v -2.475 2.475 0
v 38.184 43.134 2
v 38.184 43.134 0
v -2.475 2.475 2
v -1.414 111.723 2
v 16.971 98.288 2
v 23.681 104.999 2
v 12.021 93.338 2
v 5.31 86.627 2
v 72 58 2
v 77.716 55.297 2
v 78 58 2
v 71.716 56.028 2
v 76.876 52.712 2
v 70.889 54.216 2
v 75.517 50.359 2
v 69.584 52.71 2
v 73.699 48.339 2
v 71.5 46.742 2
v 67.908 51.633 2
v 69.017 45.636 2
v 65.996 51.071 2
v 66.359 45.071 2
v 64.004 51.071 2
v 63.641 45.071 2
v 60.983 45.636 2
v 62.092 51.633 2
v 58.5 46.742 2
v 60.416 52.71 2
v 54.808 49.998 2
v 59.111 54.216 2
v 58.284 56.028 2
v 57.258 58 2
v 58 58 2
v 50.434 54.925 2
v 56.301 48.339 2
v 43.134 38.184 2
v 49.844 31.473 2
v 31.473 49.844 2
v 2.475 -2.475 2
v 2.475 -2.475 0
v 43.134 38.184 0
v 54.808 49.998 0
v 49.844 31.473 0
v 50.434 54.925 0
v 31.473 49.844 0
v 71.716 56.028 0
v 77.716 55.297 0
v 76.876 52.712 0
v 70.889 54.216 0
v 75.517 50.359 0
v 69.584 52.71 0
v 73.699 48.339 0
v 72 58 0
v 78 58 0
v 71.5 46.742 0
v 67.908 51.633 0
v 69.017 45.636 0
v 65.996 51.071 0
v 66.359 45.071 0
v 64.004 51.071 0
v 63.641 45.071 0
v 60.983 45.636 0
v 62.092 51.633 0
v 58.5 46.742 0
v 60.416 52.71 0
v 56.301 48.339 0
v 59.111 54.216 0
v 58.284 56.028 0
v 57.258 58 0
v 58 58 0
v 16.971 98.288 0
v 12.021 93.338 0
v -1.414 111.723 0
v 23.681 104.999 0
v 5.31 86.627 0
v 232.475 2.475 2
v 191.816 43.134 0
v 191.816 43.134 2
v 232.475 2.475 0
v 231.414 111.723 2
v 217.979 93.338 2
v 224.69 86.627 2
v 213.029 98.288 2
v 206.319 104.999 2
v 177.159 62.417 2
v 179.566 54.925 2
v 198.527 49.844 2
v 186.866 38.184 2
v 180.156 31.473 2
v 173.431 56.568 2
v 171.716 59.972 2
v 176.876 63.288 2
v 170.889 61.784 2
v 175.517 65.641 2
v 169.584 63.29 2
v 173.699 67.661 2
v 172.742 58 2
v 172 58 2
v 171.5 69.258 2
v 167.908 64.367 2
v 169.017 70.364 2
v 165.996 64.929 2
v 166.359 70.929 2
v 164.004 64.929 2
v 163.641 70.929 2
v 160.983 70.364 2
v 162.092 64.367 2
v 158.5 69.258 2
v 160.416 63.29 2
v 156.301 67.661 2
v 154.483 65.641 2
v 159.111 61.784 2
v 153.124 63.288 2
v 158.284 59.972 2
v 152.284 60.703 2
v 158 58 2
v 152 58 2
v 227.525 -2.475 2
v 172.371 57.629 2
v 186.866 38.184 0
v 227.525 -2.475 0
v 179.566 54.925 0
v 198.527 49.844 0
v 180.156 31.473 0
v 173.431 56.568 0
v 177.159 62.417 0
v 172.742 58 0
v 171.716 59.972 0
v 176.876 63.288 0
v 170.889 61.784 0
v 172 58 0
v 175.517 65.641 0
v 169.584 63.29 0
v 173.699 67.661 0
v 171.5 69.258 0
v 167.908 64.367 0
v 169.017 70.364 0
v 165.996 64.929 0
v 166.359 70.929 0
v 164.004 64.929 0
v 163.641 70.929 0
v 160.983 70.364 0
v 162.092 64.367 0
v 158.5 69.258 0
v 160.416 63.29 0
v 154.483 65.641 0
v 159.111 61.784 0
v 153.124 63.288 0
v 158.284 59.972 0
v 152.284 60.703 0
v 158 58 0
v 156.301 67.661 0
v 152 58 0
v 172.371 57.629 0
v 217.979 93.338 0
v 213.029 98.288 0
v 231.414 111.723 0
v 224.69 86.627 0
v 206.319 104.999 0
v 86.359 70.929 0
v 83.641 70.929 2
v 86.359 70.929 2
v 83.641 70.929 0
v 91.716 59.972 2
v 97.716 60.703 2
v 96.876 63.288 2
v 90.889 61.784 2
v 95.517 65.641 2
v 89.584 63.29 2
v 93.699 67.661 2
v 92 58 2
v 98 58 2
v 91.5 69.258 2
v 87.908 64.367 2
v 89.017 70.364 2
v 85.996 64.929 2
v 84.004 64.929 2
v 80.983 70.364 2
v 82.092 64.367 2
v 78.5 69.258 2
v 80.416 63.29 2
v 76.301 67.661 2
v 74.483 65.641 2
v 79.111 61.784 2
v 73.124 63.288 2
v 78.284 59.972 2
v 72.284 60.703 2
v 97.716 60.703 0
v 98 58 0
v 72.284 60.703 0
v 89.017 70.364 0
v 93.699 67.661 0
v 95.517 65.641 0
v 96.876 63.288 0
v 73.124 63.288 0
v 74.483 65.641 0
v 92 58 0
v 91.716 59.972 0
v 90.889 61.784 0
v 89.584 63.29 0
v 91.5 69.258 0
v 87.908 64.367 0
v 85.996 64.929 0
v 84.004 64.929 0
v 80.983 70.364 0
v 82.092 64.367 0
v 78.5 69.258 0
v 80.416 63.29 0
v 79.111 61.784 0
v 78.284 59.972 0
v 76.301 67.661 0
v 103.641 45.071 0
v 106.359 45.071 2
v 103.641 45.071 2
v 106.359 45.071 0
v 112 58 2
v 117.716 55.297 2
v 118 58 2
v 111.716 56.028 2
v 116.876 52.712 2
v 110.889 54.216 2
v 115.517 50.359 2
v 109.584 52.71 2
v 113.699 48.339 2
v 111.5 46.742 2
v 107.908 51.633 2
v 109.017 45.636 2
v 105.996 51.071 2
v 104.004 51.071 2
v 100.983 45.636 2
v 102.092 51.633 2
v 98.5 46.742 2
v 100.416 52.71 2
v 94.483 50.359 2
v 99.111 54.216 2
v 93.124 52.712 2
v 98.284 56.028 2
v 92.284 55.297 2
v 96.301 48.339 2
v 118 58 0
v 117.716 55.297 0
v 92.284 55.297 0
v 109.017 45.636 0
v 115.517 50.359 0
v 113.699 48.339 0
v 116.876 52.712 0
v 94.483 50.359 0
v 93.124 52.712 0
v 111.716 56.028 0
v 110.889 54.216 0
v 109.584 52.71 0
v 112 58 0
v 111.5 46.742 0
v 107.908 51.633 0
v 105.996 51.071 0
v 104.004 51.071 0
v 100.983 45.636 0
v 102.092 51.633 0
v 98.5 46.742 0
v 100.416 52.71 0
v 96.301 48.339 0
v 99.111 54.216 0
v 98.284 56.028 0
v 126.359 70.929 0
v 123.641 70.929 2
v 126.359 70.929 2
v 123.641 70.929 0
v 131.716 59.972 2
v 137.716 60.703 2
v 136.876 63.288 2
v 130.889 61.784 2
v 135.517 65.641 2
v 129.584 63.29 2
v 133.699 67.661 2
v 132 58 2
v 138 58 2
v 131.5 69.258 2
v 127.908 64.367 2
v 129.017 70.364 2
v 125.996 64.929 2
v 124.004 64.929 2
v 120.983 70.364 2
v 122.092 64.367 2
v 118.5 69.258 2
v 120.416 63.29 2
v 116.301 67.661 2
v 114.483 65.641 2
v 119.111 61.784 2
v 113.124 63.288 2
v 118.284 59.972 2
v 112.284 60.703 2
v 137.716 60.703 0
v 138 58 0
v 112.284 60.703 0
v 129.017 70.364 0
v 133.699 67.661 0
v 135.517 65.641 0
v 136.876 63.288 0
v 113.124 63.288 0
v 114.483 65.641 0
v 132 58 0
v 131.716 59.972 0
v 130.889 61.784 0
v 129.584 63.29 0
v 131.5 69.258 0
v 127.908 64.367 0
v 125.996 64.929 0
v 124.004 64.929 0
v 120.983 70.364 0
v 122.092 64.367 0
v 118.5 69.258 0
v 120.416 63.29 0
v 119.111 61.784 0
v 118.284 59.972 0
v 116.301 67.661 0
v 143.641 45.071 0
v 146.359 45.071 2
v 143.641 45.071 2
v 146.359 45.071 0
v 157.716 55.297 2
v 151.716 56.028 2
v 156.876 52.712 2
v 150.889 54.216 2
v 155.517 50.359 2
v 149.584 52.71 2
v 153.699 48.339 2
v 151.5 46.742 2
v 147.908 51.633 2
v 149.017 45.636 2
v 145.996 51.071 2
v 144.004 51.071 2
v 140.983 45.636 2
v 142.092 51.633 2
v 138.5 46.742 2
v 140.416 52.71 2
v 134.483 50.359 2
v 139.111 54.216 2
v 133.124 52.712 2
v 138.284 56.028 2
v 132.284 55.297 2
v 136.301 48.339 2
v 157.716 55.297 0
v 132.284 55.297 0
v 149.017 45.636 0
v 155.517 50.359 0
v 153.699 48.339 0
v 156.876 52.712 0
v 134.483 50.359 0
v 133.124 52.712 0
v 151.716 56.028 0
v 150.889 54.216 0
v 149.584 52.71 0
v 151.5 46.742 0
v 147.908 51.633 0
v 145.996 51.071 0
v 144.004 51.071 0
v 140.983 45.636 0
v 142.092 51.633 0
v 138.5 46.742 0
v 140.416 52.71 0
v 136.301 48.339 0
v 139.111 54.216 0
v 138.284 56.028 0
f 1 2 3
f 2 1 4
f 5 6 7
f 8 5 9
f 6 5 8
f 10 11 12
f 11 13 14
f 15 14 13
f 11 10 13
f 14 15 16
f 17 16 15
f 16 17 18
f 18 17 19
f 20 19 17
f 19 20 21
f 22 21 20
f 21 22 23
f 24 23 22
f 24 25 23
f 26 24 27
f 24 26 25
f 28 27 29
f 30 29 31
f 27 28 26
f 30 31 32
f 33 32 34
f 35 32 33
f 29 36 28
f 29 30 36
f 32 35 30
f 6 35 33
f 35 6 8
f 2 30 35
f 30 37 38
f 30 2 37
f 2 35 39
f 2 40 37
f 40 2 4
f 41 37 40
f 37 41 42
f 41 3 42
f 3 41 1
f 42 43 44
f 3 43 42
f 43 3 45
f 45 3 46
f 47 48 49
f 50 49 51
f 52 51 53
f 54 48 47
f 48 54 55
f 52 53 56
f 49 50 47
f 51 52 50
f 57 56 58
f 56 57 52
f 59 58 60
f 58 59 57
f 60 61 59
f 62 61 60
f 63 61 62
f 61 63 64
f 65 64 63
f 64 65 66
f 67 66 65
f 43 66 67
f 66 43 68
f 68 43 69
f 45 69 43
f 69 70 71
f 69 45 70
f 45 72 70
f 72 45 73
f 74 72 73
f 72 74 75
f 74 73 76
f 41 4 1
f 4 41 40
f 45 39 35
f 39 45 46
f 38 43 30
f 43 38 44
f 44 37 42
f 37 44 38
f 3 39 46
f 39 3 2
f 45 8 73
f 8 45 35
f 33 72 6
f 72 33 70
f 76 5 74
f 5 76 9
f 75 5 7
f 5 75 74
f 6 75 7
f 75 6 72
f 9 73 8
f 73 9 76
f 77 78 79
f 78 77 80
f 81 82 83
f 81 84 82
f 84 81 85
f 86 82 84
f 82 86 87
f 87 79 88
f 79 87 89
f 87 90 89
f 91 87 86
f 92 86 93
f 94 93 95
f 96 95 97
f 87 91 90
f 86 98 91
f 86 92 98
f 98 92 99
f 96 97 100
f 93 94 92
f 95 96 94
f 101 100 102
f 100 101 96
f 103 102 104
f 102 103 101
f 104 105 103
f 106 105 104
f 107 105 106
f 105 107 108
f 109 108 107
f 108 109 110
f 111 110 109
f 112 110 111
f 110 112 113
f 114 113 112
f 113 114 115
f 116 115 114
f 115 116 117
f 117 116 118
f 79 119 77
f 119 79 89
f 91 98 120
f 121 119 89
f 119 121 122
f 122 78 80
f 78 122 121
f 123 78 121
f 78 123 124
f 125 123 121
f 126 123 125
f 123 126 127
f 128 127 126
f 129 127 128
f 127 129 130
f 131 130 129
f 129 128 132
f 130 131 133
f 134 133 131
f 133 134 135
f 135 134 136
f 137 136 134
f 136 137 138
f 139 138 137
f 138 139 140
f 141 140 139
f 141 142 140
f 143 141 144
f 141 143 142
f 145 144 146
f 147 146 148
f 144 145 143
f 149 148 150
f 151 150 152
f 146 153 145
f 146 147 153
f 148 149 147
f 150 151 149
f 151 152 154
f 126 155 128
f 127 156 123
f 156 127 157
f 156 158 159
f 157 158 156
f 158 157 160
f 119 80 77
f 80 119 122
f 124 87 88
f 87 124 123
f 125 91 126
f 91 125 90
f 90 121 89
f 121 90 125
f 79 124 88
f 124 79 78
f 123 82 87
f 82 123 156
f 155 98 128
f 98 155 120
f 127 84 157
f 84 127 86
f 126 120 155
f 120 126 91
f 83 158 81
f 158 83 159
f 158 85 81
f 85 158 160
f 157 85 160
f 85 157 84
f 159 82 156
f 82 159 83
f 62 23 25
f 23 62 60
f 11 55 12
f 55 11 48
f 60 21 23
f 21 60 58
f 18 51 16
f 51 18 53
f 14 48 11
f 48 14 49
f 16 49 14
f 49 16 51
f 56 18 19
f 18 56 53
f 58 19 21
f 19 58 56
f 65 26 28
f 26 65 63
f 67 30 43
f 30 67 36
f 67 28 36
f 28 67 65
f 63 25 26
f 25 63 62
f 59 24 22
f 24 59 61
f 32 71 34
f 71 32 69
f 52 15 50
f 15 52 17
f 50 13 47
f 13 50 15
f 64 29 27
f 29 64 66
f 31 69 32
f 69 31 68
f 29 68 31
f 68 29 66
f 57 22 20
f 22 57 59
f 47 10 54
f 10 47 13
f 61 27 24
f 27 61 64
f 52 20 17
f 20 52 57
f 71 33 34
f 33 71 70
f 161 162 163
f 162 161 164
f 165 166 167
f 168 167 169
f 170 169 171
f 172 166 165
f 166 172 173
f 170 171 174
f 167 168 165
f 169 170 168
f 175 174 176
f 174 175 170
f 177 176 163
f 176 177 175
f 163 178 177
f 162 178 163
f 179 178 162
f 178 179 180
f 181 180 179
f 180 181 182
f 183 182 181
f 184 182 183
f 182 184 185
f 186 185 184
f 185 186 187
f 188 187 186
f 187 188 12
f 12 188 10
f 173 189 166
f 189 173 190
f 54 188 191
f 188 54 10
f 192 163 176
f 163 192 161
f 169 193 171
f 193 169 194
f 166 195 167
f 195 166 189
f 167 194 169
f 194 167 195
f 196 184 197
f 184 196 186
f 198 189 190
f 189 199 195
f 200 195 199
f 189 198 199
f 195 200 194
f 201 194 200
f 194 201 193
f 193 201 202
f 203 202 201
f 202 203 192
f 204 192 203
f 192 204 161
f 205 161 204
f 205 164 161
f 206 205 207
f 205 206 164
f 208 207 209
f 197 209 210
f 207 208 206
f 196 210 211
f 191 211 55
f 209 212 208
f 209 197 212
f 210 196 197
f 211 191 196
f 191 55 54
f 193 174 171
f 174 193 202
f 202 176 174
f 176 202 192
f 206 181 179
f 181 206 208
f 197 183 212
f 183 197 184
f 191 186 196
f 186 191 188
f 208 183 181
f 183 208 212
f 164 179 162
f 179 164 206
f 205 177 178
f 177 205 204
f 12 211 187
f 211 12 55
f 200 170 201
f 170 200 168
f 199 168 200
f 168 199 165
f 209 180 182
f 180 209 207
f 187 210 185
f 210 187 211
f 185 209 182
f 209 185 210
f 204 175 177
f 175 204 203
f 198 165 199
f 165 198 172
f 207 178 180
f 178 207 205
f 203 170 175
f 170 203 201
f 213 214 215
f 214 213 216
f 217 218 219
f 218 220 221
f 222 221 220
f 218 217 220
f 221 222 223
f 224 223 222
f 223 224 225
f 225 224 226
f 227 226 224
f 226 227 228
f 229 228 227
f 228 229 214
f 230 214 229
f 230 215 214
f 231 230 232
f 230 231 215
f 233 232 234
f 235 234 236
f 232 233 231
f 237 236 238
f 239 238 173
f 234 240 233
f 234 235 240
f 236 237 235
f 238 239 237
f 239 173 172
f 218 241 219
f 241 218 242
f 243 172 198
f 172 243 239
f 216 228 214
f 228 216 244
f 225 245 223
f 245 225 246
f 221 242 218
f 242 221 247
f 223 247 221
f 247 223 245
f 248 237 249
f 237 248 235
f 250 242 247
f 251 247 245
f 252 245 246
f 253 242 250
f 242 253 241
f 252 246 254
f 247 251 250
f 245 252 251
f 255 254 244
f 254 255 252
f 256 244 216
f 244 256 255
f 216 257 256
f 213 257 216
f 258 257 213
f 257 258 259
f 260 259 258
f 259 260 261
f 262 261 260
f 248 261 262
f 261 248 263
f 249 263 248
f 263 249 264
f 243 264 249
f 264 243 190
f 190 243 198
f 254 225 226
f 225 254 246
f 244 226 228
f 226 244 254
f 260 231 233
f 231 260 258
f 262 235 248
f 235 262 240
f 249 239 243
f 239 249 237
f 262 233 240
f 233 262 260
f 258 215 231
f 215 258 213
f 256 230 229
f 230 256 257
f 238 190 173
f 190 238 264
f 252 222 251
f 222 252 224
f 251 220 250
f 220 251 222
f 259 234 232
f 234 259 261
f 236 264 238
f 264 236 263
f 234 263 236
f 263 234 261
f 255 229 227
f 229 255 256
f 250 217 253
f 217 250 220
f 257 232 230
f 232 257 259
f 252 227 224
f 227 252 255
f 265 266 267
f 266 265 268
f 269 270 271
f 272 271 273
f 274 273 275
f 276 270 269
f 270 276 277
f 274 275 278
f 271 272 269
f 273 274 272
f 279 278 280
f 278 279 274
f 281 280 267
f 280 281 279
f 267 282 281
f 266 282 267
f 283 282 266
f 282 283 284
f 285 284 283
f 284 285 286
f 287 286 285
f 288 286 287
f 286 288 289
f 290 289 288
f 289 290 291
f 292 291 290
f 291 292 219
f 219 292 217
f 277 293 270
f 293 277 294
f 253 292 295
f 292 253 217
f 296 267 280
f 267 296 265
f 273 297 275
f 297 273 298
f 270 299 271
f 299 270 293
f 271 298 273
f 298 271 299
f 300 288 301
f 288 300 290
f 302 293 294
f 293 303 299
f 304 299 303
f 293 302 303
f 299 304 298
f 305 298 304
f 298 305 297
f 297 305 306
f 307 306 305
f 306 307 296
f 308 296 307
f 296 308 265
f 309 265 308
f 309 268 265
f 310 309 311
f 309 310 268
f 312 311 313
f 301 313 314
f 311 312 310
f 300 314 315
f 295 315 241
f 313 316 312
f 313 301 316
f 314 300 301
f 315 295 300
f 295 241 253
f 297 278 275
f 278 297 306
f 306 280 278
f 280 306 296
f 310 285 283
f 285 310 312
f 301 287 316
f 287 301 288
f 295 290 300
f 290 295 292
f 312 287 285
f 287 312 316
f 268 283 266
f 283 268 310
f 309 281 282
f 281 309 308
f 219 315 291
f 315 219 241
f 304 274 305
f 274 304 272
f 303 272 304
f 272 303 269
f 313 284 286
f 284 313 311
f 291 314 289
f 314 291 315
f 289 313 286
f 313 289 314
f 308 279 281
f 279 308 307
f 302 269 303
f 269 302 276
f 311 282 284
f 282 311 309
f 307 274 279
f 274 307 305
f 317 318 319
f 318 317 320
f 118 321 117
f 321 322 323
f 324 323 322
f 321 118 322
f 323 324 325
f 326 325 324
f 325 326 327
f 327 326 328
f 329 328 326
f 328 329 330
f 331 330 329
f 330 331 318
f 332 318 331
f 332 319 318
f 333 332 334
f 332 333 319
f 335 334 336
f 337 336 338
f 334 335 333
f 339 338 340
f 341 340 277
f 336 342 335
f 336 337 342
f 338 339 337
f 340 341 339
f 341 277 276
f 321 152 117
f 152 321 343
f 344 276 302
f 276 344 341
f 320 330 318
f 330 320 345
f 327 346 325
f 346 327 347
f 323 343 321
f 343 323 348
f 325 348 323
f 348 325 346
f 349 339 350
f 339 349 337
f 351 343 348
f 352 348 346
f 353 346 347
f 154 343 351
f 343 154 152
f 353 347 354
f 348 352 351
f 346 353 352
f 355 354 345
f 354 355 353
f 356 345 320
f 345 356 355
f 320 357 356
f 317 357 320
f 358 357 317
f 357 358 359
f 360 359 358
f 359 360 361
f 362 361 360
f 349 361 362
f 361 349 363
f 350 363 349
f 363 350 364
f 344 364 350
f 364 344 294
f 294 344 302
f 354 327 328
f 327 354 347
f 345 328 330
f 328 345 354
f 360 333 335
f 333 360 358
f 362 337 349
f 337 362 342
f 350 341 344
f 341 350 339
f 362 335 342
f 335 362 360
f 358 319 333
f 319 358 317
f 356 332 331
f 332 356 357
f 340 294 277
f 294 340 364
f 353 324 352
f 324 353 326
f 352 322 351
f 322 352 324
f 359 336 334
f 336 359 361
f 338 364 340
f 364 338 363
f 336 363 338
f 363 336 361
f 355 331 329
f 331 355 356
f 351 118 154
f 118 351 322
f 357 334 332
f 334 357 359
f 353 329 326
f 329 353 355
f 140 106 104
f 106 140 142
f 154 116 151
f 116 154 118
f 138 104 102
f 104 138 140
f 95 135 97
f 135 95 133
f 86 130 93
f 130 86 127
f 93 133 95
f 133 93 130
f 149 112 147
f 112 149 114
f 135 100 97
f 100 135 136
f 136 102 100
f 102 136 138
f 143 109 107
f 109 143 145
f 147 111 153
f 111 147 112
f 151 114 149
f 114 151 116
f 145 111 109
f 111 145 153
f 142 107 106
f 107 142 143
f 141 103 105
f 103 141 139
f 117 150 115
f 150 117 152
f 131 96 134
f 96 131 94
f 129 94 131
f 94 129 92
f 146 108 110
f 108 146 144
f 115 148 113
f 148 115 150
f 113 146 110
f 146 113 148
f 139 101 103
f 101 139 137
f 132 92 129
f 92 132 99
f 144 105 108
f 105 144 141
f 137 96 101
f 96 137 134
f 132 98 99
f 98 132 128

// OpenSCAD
module arc(outRad,inRad) {
    translate([outRad,0,0])
    difference() {
        difference() {
            cylinder(r=outRad,h=2);
            translate([0,0,-1])
            cylinder(r=inRad,h=4);
        }
        translate([-outRad-1,0,-1])
        cube([outRad*2+2,outRad*2+2,4]);
    }
}

module arrow(t1,t2,l) {
    union() {
        translate([-t1/2,0,0])
        cube([t1,l-t2,2]);

        translate([0,l-t2,0])
        rotate(-30,[0,0,1])
        cylinder(r=t2,h=2,$fn=3);
    }
}

module arrows() {
    t1 = 7;
    t2 = 15;
    l = 80;
    
    rotate(-45,[0,0,1]) {
        union() {
            rotate(0,[0,0,1])
            arrow(t1,t2,l);

            translate([0,l-2,0])
            rotate(90,[0,0,1])
            arrow(t1,t2,l);
        }
    }
}

union() {
    arrows();

    translate([230,0,0])
    mirror([1,0,0])
    arrows();

    outRad=13;
    inRad=7;
    d = outRad-inRad;

    translate([52,58,0])
    union() {
        for(i=[0:2]) {
            translate([i*4*(outRad-d/2),0,0]) {
                arc(outRad=outRad,inRad=inRad);

                mirror([0,1,0])
                translate([2*outRad-1*d,0,0])
                arc(outRad=outRad,inRad=inRad);
            }
        }
    }
}
